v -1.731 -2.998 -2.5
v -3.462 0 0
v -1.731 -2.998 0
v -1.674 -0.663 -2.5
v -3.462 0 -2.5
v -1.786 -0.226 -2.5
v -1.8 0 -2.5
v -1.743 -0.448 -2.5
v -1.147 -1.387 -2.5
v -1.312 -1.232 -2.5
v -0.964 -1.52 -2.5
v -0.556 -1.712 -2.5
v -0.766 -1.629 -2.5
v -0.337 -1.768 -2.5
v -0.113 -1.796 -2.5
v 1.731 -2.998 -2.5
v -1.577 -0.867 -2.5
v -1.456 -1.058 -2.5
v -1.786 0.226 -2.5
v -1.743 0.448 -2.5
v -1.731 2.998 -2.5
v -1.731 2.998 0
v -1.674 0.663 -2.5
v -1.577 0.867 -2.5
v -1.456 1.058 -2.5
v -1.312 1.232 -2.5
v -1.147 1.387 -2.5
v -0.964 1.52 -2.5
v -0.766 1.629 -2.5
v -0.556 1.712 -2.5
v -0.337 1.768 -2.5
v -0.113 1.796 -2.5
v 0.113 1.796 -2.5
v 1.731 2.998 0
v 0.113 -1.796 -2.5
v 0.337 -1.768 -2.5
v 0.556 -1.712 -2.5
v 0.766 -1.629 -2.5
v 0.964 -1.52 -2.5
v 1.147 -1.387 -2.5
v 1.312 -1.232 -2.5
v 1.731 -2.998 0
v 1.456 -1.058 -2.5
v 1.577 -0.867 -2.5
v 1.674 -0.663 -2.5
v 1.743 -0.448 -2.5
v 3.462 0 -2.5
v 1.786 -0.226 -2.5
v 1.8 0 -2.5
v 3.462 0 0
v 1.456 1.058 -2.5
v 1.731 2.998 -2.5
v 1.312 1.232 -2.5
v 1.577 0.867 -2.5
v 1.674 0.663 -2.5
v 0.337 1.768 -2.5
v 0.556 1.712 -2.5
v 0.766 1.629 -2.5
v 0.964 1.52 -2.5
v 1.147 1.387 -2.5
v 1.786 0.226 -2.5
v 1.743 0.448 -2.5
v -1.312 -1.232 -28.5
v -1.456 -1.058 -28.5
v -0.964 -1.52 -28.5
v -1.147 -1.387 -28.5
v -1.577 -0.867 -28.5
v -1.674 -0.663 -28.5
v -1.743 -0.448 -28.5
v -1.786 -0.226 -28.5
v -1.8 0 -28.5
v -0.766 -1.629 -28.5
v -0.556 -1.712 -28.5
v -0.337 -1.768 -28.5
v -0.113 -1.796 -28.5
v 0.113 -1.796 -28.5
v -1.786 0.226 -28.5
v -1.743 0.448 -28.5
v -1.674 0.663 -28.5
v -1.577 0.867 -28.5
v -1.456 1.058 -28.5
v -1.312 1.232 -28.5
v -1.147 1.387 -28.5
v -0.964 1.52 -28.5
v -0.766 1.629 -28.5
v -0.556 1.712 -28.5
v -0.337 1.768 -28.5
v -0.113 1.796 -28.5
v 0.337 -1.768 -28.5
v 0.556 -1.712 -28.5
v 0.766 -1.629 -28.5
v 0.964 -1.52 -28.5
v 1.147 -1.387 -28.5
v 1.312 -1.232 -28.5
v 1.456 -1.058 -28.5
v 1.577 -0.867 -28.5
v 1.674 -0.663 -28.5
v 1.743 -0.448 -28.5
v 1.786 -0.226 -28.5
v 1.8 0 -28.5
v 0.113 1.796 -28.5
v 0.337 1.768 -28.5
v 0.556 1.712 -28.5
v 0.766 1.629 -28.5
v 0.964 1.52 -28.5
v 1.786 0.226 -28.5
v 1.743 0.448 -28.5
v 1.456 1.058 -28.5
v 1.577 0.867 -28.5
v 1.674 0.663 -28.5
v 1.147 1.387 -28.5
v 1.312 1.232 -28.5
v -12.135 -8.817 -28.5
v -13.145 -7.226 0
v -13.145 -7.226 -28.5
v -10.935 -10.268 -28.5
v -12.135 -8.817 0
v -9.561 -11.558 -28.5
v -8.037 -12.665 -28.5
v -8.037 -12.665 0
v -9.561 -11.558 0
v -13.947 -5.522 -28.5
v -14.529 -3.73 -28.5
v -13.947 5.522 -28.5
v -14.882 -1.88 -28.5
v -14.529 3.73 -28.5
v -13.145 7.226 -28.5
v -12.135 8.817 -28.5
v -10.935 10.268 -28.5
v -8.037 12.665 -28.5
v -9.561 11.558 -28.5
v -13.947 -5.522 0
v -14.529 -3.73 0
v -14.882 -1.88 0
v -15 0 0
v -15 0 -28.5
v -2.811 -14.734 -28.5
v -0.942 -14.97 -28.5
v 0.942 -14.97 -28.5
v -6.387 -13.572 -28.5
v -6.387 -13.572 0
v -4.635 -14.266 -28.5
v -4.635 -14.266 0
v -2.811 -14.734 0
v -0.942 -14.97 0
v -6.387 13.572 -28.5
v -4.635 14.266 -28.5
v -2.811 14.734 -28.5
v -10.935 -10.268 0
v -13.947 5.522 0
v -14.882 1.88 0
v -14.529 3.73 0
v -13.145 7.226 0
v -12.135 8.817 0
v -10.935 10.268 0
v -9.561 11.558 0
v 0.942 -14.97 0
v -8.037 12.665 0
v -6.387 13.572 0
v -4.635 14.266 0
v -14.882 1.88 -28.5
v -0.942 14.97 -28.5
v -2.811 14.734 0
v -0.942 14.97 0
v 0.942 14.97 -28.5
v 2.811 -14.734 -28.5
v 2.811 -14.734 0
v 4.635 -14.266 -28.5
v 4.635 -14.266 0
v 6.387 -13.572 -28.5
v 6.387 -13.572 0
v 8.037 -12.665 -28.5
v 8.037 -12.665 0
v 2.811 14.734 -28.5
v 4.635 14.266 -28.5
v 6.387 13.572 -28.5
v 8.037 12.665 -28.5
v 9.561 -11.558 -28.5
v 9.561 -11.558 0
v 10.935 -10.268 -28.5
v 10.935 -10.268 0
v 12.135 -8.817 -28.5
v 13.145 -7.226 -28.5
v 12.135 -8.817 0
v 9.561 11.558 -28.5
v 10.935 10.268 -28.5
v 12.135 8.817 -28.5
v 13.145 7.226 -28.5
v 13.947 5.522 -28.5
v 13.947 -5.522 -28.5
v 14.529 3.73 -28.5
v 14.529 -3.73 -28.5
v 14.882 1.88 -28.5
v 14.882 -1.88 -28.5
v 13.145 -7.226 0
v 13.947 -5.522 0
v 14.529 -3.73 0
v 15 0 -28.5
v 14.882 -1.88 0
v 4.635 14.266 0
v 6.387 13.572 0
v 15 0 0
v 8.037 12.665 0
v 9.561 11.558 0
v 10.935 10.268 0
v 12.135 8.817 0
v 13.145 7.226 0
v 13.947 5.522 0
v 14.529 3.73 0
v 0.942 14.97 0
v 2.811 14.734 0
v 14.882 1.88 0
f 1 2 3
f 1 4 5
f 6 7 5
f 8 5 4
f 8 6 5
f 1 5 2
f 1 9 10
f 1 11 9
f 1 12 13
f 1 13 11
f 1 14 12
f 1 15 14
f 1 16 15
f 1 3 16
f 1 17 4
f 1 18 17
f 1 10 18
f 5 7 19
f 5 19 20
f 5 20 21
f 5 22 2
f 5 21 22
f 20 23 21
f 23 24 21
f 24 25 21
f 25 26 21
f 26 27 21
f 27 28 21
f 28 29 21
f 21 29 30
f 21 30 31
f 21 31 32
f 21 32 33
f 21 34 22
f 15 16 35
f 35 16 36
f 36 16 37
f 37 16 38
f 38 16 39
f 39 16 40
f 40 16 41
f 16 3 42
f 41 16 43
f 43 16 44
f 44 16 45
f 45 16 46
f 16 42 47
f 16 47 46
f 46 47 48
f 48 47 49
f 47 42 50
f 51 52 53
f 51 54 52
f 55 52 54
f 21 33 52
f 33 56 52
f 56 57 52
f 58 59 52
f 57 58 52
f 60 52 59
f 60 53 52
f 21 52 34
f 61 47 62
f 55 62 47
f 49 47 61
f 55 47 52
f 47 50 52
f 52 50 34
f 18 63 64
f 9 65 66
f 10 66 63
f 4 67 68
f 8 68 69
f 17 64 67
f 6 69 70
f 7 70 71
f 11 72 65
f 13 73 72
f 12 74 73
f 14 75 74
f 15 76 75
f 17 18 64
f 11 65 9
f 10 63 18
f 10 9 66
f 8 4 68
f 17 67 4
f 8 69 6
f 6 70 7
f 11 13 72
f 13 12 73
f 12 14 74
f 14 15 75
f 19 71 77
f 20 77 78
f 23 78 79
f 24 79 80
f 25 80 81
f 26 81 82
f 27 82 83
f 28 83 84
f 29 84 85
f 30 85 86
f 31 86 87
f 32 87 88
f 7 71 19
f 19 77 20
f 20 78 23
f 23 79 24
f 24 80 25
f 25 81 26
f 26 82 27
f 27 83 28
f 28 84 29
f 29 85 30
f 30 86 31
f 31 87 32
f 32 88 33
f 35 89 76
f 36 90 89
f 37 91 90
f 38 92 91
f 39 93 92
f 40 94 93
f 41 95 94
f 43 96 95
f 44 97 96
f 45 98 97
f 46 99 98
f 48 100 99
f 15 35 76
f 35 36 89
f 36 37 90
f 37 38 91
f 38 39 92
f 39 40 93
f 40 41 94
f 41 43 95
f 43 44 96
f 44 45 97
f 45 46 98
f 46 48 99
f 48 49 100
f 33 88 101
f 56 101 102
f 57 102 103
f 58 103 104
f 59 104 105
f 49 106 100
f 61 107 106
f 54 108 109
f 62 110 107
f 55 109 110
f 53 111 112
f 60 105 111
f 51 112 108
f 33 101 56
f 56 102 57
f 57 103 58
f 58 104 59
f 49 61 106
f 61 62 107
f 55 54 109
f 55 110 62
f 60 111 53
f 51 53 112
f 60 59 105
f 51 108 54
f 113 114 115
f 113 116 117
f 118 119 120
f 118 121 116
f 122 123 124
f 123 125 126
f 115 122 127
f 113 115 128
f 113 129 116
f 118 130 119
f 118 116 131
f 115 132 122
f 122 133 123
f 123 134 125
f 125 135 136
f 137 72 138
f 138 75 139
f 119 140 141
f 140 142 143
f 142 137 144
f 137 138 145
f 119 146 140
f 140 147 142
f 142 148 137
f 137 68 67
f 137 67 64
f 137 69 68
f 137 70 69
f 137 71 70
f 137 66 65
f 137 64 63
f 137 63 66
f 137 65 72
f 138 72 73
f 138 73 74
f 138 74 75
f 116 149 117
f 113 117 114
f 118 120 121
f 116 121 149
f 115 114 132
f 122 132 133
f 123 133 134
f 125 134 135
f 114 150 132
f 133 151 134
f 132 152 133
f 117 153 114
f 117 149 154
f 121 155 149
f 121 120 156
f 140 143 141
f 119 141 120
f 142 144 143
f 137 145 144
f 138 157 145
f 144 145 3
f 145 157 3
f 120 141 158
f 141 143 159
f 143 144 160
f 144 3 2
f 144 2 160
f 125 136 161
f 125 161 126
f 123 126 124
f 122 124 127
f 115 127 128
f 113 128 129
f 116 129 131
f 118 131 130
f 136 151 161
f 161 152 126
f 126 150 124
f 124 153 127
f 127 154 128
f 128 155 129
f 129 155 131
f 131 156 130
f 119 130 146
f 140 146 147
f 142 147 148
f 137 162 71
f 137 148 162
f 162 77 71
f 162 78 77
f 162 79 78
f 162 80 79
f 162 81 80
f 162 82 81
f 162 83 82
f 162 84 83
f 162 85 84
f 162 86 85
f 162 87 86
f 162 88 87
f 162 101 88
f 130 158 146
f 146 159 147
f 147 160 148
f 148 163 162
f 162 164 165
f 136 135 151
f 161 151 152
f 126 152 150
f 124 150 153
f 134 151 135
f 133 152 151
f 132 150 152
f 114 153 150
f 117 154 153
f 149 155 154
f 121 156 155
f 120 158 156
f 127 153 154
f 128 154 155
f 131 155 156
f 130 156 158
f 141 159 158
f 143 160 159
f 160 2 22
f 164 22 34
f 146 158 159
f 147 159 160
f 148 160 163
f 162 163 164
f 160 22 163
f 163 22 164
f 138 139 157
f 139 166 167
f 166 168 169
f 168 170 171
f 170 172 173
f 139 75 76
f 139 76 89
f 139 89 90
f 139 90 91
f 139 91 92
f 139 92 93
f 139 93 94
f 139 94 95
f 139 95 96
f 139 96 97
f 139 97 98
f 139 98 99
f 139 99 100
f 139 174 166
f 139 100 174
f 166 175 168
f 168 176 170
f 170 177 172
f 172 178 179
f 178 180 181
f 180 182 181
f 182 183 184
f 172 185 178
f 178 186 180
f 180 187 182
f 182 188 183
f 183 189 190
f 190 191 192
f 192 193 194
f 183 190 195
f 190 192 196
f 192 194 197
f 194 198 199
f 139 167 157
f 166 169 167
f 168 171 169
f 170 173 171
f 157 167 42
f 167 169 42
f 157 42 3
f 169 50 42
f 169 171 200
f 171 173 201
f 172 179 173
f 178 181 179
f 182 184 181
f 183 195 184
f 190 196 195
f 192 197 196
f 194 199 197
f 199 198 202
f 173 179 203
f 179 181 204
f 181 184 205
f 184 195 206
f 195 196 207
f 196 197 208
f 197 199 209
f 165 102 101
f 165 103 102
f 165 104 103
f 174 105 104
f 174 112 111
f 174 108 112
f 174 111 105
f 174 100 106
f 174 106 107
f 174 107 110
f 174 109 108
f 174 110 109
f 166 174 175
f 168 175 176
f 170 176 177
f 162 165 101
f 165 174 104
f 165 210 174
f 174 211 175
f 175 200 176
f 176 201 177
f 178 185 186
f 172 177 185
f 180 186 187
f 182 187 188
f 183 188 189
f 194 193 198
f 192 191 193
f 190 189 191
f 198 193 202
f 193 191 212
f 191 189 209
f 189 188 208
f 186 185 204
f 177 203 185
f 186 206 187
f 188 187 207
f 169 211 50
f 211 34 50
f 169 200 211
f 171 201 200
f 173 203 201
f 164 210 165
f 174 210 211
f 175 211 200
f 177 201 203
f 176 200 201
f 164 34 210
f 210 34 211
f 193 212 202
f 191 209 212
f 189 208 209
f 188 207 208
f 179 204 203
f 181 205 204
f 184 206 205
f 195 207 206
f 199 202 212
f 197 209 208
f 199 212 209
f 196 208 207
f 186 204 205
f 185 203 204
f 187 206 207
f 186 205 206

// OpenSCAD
$fn = 50;


difference() {
	union() {
		translate(v = [0, 0, -28.5000000000]) {
			cylinder(h = 28.5000000000, r = 15.0000000000);
		}
	}
	union() {
		translate(v = [0, 0, 0]) {
			rotate(a = [0, 0, 0]) {
				difference() {
					union() {
						translate(v = [0, 0, -2.5000000000]) {
							linear_extrude(height = 2.5000000000) {
								polygon(points = [[3.4620000000, 0.0000000000], [1.7310000000, 2.9981799479], [-1.7310000000, 2.9981799479], [-3.4620000000, 0.0000000000], [-1.7310000000, -2.9981799479], [1.7310000000, -2.9981799479]]);
							}
						}
					}
					union();
				}
			}
		}
		#translate(v = [0, 0, -100.0000000000]) {
			cylinder(h = 200, r = 1.8000000000);
		}
	}
}
